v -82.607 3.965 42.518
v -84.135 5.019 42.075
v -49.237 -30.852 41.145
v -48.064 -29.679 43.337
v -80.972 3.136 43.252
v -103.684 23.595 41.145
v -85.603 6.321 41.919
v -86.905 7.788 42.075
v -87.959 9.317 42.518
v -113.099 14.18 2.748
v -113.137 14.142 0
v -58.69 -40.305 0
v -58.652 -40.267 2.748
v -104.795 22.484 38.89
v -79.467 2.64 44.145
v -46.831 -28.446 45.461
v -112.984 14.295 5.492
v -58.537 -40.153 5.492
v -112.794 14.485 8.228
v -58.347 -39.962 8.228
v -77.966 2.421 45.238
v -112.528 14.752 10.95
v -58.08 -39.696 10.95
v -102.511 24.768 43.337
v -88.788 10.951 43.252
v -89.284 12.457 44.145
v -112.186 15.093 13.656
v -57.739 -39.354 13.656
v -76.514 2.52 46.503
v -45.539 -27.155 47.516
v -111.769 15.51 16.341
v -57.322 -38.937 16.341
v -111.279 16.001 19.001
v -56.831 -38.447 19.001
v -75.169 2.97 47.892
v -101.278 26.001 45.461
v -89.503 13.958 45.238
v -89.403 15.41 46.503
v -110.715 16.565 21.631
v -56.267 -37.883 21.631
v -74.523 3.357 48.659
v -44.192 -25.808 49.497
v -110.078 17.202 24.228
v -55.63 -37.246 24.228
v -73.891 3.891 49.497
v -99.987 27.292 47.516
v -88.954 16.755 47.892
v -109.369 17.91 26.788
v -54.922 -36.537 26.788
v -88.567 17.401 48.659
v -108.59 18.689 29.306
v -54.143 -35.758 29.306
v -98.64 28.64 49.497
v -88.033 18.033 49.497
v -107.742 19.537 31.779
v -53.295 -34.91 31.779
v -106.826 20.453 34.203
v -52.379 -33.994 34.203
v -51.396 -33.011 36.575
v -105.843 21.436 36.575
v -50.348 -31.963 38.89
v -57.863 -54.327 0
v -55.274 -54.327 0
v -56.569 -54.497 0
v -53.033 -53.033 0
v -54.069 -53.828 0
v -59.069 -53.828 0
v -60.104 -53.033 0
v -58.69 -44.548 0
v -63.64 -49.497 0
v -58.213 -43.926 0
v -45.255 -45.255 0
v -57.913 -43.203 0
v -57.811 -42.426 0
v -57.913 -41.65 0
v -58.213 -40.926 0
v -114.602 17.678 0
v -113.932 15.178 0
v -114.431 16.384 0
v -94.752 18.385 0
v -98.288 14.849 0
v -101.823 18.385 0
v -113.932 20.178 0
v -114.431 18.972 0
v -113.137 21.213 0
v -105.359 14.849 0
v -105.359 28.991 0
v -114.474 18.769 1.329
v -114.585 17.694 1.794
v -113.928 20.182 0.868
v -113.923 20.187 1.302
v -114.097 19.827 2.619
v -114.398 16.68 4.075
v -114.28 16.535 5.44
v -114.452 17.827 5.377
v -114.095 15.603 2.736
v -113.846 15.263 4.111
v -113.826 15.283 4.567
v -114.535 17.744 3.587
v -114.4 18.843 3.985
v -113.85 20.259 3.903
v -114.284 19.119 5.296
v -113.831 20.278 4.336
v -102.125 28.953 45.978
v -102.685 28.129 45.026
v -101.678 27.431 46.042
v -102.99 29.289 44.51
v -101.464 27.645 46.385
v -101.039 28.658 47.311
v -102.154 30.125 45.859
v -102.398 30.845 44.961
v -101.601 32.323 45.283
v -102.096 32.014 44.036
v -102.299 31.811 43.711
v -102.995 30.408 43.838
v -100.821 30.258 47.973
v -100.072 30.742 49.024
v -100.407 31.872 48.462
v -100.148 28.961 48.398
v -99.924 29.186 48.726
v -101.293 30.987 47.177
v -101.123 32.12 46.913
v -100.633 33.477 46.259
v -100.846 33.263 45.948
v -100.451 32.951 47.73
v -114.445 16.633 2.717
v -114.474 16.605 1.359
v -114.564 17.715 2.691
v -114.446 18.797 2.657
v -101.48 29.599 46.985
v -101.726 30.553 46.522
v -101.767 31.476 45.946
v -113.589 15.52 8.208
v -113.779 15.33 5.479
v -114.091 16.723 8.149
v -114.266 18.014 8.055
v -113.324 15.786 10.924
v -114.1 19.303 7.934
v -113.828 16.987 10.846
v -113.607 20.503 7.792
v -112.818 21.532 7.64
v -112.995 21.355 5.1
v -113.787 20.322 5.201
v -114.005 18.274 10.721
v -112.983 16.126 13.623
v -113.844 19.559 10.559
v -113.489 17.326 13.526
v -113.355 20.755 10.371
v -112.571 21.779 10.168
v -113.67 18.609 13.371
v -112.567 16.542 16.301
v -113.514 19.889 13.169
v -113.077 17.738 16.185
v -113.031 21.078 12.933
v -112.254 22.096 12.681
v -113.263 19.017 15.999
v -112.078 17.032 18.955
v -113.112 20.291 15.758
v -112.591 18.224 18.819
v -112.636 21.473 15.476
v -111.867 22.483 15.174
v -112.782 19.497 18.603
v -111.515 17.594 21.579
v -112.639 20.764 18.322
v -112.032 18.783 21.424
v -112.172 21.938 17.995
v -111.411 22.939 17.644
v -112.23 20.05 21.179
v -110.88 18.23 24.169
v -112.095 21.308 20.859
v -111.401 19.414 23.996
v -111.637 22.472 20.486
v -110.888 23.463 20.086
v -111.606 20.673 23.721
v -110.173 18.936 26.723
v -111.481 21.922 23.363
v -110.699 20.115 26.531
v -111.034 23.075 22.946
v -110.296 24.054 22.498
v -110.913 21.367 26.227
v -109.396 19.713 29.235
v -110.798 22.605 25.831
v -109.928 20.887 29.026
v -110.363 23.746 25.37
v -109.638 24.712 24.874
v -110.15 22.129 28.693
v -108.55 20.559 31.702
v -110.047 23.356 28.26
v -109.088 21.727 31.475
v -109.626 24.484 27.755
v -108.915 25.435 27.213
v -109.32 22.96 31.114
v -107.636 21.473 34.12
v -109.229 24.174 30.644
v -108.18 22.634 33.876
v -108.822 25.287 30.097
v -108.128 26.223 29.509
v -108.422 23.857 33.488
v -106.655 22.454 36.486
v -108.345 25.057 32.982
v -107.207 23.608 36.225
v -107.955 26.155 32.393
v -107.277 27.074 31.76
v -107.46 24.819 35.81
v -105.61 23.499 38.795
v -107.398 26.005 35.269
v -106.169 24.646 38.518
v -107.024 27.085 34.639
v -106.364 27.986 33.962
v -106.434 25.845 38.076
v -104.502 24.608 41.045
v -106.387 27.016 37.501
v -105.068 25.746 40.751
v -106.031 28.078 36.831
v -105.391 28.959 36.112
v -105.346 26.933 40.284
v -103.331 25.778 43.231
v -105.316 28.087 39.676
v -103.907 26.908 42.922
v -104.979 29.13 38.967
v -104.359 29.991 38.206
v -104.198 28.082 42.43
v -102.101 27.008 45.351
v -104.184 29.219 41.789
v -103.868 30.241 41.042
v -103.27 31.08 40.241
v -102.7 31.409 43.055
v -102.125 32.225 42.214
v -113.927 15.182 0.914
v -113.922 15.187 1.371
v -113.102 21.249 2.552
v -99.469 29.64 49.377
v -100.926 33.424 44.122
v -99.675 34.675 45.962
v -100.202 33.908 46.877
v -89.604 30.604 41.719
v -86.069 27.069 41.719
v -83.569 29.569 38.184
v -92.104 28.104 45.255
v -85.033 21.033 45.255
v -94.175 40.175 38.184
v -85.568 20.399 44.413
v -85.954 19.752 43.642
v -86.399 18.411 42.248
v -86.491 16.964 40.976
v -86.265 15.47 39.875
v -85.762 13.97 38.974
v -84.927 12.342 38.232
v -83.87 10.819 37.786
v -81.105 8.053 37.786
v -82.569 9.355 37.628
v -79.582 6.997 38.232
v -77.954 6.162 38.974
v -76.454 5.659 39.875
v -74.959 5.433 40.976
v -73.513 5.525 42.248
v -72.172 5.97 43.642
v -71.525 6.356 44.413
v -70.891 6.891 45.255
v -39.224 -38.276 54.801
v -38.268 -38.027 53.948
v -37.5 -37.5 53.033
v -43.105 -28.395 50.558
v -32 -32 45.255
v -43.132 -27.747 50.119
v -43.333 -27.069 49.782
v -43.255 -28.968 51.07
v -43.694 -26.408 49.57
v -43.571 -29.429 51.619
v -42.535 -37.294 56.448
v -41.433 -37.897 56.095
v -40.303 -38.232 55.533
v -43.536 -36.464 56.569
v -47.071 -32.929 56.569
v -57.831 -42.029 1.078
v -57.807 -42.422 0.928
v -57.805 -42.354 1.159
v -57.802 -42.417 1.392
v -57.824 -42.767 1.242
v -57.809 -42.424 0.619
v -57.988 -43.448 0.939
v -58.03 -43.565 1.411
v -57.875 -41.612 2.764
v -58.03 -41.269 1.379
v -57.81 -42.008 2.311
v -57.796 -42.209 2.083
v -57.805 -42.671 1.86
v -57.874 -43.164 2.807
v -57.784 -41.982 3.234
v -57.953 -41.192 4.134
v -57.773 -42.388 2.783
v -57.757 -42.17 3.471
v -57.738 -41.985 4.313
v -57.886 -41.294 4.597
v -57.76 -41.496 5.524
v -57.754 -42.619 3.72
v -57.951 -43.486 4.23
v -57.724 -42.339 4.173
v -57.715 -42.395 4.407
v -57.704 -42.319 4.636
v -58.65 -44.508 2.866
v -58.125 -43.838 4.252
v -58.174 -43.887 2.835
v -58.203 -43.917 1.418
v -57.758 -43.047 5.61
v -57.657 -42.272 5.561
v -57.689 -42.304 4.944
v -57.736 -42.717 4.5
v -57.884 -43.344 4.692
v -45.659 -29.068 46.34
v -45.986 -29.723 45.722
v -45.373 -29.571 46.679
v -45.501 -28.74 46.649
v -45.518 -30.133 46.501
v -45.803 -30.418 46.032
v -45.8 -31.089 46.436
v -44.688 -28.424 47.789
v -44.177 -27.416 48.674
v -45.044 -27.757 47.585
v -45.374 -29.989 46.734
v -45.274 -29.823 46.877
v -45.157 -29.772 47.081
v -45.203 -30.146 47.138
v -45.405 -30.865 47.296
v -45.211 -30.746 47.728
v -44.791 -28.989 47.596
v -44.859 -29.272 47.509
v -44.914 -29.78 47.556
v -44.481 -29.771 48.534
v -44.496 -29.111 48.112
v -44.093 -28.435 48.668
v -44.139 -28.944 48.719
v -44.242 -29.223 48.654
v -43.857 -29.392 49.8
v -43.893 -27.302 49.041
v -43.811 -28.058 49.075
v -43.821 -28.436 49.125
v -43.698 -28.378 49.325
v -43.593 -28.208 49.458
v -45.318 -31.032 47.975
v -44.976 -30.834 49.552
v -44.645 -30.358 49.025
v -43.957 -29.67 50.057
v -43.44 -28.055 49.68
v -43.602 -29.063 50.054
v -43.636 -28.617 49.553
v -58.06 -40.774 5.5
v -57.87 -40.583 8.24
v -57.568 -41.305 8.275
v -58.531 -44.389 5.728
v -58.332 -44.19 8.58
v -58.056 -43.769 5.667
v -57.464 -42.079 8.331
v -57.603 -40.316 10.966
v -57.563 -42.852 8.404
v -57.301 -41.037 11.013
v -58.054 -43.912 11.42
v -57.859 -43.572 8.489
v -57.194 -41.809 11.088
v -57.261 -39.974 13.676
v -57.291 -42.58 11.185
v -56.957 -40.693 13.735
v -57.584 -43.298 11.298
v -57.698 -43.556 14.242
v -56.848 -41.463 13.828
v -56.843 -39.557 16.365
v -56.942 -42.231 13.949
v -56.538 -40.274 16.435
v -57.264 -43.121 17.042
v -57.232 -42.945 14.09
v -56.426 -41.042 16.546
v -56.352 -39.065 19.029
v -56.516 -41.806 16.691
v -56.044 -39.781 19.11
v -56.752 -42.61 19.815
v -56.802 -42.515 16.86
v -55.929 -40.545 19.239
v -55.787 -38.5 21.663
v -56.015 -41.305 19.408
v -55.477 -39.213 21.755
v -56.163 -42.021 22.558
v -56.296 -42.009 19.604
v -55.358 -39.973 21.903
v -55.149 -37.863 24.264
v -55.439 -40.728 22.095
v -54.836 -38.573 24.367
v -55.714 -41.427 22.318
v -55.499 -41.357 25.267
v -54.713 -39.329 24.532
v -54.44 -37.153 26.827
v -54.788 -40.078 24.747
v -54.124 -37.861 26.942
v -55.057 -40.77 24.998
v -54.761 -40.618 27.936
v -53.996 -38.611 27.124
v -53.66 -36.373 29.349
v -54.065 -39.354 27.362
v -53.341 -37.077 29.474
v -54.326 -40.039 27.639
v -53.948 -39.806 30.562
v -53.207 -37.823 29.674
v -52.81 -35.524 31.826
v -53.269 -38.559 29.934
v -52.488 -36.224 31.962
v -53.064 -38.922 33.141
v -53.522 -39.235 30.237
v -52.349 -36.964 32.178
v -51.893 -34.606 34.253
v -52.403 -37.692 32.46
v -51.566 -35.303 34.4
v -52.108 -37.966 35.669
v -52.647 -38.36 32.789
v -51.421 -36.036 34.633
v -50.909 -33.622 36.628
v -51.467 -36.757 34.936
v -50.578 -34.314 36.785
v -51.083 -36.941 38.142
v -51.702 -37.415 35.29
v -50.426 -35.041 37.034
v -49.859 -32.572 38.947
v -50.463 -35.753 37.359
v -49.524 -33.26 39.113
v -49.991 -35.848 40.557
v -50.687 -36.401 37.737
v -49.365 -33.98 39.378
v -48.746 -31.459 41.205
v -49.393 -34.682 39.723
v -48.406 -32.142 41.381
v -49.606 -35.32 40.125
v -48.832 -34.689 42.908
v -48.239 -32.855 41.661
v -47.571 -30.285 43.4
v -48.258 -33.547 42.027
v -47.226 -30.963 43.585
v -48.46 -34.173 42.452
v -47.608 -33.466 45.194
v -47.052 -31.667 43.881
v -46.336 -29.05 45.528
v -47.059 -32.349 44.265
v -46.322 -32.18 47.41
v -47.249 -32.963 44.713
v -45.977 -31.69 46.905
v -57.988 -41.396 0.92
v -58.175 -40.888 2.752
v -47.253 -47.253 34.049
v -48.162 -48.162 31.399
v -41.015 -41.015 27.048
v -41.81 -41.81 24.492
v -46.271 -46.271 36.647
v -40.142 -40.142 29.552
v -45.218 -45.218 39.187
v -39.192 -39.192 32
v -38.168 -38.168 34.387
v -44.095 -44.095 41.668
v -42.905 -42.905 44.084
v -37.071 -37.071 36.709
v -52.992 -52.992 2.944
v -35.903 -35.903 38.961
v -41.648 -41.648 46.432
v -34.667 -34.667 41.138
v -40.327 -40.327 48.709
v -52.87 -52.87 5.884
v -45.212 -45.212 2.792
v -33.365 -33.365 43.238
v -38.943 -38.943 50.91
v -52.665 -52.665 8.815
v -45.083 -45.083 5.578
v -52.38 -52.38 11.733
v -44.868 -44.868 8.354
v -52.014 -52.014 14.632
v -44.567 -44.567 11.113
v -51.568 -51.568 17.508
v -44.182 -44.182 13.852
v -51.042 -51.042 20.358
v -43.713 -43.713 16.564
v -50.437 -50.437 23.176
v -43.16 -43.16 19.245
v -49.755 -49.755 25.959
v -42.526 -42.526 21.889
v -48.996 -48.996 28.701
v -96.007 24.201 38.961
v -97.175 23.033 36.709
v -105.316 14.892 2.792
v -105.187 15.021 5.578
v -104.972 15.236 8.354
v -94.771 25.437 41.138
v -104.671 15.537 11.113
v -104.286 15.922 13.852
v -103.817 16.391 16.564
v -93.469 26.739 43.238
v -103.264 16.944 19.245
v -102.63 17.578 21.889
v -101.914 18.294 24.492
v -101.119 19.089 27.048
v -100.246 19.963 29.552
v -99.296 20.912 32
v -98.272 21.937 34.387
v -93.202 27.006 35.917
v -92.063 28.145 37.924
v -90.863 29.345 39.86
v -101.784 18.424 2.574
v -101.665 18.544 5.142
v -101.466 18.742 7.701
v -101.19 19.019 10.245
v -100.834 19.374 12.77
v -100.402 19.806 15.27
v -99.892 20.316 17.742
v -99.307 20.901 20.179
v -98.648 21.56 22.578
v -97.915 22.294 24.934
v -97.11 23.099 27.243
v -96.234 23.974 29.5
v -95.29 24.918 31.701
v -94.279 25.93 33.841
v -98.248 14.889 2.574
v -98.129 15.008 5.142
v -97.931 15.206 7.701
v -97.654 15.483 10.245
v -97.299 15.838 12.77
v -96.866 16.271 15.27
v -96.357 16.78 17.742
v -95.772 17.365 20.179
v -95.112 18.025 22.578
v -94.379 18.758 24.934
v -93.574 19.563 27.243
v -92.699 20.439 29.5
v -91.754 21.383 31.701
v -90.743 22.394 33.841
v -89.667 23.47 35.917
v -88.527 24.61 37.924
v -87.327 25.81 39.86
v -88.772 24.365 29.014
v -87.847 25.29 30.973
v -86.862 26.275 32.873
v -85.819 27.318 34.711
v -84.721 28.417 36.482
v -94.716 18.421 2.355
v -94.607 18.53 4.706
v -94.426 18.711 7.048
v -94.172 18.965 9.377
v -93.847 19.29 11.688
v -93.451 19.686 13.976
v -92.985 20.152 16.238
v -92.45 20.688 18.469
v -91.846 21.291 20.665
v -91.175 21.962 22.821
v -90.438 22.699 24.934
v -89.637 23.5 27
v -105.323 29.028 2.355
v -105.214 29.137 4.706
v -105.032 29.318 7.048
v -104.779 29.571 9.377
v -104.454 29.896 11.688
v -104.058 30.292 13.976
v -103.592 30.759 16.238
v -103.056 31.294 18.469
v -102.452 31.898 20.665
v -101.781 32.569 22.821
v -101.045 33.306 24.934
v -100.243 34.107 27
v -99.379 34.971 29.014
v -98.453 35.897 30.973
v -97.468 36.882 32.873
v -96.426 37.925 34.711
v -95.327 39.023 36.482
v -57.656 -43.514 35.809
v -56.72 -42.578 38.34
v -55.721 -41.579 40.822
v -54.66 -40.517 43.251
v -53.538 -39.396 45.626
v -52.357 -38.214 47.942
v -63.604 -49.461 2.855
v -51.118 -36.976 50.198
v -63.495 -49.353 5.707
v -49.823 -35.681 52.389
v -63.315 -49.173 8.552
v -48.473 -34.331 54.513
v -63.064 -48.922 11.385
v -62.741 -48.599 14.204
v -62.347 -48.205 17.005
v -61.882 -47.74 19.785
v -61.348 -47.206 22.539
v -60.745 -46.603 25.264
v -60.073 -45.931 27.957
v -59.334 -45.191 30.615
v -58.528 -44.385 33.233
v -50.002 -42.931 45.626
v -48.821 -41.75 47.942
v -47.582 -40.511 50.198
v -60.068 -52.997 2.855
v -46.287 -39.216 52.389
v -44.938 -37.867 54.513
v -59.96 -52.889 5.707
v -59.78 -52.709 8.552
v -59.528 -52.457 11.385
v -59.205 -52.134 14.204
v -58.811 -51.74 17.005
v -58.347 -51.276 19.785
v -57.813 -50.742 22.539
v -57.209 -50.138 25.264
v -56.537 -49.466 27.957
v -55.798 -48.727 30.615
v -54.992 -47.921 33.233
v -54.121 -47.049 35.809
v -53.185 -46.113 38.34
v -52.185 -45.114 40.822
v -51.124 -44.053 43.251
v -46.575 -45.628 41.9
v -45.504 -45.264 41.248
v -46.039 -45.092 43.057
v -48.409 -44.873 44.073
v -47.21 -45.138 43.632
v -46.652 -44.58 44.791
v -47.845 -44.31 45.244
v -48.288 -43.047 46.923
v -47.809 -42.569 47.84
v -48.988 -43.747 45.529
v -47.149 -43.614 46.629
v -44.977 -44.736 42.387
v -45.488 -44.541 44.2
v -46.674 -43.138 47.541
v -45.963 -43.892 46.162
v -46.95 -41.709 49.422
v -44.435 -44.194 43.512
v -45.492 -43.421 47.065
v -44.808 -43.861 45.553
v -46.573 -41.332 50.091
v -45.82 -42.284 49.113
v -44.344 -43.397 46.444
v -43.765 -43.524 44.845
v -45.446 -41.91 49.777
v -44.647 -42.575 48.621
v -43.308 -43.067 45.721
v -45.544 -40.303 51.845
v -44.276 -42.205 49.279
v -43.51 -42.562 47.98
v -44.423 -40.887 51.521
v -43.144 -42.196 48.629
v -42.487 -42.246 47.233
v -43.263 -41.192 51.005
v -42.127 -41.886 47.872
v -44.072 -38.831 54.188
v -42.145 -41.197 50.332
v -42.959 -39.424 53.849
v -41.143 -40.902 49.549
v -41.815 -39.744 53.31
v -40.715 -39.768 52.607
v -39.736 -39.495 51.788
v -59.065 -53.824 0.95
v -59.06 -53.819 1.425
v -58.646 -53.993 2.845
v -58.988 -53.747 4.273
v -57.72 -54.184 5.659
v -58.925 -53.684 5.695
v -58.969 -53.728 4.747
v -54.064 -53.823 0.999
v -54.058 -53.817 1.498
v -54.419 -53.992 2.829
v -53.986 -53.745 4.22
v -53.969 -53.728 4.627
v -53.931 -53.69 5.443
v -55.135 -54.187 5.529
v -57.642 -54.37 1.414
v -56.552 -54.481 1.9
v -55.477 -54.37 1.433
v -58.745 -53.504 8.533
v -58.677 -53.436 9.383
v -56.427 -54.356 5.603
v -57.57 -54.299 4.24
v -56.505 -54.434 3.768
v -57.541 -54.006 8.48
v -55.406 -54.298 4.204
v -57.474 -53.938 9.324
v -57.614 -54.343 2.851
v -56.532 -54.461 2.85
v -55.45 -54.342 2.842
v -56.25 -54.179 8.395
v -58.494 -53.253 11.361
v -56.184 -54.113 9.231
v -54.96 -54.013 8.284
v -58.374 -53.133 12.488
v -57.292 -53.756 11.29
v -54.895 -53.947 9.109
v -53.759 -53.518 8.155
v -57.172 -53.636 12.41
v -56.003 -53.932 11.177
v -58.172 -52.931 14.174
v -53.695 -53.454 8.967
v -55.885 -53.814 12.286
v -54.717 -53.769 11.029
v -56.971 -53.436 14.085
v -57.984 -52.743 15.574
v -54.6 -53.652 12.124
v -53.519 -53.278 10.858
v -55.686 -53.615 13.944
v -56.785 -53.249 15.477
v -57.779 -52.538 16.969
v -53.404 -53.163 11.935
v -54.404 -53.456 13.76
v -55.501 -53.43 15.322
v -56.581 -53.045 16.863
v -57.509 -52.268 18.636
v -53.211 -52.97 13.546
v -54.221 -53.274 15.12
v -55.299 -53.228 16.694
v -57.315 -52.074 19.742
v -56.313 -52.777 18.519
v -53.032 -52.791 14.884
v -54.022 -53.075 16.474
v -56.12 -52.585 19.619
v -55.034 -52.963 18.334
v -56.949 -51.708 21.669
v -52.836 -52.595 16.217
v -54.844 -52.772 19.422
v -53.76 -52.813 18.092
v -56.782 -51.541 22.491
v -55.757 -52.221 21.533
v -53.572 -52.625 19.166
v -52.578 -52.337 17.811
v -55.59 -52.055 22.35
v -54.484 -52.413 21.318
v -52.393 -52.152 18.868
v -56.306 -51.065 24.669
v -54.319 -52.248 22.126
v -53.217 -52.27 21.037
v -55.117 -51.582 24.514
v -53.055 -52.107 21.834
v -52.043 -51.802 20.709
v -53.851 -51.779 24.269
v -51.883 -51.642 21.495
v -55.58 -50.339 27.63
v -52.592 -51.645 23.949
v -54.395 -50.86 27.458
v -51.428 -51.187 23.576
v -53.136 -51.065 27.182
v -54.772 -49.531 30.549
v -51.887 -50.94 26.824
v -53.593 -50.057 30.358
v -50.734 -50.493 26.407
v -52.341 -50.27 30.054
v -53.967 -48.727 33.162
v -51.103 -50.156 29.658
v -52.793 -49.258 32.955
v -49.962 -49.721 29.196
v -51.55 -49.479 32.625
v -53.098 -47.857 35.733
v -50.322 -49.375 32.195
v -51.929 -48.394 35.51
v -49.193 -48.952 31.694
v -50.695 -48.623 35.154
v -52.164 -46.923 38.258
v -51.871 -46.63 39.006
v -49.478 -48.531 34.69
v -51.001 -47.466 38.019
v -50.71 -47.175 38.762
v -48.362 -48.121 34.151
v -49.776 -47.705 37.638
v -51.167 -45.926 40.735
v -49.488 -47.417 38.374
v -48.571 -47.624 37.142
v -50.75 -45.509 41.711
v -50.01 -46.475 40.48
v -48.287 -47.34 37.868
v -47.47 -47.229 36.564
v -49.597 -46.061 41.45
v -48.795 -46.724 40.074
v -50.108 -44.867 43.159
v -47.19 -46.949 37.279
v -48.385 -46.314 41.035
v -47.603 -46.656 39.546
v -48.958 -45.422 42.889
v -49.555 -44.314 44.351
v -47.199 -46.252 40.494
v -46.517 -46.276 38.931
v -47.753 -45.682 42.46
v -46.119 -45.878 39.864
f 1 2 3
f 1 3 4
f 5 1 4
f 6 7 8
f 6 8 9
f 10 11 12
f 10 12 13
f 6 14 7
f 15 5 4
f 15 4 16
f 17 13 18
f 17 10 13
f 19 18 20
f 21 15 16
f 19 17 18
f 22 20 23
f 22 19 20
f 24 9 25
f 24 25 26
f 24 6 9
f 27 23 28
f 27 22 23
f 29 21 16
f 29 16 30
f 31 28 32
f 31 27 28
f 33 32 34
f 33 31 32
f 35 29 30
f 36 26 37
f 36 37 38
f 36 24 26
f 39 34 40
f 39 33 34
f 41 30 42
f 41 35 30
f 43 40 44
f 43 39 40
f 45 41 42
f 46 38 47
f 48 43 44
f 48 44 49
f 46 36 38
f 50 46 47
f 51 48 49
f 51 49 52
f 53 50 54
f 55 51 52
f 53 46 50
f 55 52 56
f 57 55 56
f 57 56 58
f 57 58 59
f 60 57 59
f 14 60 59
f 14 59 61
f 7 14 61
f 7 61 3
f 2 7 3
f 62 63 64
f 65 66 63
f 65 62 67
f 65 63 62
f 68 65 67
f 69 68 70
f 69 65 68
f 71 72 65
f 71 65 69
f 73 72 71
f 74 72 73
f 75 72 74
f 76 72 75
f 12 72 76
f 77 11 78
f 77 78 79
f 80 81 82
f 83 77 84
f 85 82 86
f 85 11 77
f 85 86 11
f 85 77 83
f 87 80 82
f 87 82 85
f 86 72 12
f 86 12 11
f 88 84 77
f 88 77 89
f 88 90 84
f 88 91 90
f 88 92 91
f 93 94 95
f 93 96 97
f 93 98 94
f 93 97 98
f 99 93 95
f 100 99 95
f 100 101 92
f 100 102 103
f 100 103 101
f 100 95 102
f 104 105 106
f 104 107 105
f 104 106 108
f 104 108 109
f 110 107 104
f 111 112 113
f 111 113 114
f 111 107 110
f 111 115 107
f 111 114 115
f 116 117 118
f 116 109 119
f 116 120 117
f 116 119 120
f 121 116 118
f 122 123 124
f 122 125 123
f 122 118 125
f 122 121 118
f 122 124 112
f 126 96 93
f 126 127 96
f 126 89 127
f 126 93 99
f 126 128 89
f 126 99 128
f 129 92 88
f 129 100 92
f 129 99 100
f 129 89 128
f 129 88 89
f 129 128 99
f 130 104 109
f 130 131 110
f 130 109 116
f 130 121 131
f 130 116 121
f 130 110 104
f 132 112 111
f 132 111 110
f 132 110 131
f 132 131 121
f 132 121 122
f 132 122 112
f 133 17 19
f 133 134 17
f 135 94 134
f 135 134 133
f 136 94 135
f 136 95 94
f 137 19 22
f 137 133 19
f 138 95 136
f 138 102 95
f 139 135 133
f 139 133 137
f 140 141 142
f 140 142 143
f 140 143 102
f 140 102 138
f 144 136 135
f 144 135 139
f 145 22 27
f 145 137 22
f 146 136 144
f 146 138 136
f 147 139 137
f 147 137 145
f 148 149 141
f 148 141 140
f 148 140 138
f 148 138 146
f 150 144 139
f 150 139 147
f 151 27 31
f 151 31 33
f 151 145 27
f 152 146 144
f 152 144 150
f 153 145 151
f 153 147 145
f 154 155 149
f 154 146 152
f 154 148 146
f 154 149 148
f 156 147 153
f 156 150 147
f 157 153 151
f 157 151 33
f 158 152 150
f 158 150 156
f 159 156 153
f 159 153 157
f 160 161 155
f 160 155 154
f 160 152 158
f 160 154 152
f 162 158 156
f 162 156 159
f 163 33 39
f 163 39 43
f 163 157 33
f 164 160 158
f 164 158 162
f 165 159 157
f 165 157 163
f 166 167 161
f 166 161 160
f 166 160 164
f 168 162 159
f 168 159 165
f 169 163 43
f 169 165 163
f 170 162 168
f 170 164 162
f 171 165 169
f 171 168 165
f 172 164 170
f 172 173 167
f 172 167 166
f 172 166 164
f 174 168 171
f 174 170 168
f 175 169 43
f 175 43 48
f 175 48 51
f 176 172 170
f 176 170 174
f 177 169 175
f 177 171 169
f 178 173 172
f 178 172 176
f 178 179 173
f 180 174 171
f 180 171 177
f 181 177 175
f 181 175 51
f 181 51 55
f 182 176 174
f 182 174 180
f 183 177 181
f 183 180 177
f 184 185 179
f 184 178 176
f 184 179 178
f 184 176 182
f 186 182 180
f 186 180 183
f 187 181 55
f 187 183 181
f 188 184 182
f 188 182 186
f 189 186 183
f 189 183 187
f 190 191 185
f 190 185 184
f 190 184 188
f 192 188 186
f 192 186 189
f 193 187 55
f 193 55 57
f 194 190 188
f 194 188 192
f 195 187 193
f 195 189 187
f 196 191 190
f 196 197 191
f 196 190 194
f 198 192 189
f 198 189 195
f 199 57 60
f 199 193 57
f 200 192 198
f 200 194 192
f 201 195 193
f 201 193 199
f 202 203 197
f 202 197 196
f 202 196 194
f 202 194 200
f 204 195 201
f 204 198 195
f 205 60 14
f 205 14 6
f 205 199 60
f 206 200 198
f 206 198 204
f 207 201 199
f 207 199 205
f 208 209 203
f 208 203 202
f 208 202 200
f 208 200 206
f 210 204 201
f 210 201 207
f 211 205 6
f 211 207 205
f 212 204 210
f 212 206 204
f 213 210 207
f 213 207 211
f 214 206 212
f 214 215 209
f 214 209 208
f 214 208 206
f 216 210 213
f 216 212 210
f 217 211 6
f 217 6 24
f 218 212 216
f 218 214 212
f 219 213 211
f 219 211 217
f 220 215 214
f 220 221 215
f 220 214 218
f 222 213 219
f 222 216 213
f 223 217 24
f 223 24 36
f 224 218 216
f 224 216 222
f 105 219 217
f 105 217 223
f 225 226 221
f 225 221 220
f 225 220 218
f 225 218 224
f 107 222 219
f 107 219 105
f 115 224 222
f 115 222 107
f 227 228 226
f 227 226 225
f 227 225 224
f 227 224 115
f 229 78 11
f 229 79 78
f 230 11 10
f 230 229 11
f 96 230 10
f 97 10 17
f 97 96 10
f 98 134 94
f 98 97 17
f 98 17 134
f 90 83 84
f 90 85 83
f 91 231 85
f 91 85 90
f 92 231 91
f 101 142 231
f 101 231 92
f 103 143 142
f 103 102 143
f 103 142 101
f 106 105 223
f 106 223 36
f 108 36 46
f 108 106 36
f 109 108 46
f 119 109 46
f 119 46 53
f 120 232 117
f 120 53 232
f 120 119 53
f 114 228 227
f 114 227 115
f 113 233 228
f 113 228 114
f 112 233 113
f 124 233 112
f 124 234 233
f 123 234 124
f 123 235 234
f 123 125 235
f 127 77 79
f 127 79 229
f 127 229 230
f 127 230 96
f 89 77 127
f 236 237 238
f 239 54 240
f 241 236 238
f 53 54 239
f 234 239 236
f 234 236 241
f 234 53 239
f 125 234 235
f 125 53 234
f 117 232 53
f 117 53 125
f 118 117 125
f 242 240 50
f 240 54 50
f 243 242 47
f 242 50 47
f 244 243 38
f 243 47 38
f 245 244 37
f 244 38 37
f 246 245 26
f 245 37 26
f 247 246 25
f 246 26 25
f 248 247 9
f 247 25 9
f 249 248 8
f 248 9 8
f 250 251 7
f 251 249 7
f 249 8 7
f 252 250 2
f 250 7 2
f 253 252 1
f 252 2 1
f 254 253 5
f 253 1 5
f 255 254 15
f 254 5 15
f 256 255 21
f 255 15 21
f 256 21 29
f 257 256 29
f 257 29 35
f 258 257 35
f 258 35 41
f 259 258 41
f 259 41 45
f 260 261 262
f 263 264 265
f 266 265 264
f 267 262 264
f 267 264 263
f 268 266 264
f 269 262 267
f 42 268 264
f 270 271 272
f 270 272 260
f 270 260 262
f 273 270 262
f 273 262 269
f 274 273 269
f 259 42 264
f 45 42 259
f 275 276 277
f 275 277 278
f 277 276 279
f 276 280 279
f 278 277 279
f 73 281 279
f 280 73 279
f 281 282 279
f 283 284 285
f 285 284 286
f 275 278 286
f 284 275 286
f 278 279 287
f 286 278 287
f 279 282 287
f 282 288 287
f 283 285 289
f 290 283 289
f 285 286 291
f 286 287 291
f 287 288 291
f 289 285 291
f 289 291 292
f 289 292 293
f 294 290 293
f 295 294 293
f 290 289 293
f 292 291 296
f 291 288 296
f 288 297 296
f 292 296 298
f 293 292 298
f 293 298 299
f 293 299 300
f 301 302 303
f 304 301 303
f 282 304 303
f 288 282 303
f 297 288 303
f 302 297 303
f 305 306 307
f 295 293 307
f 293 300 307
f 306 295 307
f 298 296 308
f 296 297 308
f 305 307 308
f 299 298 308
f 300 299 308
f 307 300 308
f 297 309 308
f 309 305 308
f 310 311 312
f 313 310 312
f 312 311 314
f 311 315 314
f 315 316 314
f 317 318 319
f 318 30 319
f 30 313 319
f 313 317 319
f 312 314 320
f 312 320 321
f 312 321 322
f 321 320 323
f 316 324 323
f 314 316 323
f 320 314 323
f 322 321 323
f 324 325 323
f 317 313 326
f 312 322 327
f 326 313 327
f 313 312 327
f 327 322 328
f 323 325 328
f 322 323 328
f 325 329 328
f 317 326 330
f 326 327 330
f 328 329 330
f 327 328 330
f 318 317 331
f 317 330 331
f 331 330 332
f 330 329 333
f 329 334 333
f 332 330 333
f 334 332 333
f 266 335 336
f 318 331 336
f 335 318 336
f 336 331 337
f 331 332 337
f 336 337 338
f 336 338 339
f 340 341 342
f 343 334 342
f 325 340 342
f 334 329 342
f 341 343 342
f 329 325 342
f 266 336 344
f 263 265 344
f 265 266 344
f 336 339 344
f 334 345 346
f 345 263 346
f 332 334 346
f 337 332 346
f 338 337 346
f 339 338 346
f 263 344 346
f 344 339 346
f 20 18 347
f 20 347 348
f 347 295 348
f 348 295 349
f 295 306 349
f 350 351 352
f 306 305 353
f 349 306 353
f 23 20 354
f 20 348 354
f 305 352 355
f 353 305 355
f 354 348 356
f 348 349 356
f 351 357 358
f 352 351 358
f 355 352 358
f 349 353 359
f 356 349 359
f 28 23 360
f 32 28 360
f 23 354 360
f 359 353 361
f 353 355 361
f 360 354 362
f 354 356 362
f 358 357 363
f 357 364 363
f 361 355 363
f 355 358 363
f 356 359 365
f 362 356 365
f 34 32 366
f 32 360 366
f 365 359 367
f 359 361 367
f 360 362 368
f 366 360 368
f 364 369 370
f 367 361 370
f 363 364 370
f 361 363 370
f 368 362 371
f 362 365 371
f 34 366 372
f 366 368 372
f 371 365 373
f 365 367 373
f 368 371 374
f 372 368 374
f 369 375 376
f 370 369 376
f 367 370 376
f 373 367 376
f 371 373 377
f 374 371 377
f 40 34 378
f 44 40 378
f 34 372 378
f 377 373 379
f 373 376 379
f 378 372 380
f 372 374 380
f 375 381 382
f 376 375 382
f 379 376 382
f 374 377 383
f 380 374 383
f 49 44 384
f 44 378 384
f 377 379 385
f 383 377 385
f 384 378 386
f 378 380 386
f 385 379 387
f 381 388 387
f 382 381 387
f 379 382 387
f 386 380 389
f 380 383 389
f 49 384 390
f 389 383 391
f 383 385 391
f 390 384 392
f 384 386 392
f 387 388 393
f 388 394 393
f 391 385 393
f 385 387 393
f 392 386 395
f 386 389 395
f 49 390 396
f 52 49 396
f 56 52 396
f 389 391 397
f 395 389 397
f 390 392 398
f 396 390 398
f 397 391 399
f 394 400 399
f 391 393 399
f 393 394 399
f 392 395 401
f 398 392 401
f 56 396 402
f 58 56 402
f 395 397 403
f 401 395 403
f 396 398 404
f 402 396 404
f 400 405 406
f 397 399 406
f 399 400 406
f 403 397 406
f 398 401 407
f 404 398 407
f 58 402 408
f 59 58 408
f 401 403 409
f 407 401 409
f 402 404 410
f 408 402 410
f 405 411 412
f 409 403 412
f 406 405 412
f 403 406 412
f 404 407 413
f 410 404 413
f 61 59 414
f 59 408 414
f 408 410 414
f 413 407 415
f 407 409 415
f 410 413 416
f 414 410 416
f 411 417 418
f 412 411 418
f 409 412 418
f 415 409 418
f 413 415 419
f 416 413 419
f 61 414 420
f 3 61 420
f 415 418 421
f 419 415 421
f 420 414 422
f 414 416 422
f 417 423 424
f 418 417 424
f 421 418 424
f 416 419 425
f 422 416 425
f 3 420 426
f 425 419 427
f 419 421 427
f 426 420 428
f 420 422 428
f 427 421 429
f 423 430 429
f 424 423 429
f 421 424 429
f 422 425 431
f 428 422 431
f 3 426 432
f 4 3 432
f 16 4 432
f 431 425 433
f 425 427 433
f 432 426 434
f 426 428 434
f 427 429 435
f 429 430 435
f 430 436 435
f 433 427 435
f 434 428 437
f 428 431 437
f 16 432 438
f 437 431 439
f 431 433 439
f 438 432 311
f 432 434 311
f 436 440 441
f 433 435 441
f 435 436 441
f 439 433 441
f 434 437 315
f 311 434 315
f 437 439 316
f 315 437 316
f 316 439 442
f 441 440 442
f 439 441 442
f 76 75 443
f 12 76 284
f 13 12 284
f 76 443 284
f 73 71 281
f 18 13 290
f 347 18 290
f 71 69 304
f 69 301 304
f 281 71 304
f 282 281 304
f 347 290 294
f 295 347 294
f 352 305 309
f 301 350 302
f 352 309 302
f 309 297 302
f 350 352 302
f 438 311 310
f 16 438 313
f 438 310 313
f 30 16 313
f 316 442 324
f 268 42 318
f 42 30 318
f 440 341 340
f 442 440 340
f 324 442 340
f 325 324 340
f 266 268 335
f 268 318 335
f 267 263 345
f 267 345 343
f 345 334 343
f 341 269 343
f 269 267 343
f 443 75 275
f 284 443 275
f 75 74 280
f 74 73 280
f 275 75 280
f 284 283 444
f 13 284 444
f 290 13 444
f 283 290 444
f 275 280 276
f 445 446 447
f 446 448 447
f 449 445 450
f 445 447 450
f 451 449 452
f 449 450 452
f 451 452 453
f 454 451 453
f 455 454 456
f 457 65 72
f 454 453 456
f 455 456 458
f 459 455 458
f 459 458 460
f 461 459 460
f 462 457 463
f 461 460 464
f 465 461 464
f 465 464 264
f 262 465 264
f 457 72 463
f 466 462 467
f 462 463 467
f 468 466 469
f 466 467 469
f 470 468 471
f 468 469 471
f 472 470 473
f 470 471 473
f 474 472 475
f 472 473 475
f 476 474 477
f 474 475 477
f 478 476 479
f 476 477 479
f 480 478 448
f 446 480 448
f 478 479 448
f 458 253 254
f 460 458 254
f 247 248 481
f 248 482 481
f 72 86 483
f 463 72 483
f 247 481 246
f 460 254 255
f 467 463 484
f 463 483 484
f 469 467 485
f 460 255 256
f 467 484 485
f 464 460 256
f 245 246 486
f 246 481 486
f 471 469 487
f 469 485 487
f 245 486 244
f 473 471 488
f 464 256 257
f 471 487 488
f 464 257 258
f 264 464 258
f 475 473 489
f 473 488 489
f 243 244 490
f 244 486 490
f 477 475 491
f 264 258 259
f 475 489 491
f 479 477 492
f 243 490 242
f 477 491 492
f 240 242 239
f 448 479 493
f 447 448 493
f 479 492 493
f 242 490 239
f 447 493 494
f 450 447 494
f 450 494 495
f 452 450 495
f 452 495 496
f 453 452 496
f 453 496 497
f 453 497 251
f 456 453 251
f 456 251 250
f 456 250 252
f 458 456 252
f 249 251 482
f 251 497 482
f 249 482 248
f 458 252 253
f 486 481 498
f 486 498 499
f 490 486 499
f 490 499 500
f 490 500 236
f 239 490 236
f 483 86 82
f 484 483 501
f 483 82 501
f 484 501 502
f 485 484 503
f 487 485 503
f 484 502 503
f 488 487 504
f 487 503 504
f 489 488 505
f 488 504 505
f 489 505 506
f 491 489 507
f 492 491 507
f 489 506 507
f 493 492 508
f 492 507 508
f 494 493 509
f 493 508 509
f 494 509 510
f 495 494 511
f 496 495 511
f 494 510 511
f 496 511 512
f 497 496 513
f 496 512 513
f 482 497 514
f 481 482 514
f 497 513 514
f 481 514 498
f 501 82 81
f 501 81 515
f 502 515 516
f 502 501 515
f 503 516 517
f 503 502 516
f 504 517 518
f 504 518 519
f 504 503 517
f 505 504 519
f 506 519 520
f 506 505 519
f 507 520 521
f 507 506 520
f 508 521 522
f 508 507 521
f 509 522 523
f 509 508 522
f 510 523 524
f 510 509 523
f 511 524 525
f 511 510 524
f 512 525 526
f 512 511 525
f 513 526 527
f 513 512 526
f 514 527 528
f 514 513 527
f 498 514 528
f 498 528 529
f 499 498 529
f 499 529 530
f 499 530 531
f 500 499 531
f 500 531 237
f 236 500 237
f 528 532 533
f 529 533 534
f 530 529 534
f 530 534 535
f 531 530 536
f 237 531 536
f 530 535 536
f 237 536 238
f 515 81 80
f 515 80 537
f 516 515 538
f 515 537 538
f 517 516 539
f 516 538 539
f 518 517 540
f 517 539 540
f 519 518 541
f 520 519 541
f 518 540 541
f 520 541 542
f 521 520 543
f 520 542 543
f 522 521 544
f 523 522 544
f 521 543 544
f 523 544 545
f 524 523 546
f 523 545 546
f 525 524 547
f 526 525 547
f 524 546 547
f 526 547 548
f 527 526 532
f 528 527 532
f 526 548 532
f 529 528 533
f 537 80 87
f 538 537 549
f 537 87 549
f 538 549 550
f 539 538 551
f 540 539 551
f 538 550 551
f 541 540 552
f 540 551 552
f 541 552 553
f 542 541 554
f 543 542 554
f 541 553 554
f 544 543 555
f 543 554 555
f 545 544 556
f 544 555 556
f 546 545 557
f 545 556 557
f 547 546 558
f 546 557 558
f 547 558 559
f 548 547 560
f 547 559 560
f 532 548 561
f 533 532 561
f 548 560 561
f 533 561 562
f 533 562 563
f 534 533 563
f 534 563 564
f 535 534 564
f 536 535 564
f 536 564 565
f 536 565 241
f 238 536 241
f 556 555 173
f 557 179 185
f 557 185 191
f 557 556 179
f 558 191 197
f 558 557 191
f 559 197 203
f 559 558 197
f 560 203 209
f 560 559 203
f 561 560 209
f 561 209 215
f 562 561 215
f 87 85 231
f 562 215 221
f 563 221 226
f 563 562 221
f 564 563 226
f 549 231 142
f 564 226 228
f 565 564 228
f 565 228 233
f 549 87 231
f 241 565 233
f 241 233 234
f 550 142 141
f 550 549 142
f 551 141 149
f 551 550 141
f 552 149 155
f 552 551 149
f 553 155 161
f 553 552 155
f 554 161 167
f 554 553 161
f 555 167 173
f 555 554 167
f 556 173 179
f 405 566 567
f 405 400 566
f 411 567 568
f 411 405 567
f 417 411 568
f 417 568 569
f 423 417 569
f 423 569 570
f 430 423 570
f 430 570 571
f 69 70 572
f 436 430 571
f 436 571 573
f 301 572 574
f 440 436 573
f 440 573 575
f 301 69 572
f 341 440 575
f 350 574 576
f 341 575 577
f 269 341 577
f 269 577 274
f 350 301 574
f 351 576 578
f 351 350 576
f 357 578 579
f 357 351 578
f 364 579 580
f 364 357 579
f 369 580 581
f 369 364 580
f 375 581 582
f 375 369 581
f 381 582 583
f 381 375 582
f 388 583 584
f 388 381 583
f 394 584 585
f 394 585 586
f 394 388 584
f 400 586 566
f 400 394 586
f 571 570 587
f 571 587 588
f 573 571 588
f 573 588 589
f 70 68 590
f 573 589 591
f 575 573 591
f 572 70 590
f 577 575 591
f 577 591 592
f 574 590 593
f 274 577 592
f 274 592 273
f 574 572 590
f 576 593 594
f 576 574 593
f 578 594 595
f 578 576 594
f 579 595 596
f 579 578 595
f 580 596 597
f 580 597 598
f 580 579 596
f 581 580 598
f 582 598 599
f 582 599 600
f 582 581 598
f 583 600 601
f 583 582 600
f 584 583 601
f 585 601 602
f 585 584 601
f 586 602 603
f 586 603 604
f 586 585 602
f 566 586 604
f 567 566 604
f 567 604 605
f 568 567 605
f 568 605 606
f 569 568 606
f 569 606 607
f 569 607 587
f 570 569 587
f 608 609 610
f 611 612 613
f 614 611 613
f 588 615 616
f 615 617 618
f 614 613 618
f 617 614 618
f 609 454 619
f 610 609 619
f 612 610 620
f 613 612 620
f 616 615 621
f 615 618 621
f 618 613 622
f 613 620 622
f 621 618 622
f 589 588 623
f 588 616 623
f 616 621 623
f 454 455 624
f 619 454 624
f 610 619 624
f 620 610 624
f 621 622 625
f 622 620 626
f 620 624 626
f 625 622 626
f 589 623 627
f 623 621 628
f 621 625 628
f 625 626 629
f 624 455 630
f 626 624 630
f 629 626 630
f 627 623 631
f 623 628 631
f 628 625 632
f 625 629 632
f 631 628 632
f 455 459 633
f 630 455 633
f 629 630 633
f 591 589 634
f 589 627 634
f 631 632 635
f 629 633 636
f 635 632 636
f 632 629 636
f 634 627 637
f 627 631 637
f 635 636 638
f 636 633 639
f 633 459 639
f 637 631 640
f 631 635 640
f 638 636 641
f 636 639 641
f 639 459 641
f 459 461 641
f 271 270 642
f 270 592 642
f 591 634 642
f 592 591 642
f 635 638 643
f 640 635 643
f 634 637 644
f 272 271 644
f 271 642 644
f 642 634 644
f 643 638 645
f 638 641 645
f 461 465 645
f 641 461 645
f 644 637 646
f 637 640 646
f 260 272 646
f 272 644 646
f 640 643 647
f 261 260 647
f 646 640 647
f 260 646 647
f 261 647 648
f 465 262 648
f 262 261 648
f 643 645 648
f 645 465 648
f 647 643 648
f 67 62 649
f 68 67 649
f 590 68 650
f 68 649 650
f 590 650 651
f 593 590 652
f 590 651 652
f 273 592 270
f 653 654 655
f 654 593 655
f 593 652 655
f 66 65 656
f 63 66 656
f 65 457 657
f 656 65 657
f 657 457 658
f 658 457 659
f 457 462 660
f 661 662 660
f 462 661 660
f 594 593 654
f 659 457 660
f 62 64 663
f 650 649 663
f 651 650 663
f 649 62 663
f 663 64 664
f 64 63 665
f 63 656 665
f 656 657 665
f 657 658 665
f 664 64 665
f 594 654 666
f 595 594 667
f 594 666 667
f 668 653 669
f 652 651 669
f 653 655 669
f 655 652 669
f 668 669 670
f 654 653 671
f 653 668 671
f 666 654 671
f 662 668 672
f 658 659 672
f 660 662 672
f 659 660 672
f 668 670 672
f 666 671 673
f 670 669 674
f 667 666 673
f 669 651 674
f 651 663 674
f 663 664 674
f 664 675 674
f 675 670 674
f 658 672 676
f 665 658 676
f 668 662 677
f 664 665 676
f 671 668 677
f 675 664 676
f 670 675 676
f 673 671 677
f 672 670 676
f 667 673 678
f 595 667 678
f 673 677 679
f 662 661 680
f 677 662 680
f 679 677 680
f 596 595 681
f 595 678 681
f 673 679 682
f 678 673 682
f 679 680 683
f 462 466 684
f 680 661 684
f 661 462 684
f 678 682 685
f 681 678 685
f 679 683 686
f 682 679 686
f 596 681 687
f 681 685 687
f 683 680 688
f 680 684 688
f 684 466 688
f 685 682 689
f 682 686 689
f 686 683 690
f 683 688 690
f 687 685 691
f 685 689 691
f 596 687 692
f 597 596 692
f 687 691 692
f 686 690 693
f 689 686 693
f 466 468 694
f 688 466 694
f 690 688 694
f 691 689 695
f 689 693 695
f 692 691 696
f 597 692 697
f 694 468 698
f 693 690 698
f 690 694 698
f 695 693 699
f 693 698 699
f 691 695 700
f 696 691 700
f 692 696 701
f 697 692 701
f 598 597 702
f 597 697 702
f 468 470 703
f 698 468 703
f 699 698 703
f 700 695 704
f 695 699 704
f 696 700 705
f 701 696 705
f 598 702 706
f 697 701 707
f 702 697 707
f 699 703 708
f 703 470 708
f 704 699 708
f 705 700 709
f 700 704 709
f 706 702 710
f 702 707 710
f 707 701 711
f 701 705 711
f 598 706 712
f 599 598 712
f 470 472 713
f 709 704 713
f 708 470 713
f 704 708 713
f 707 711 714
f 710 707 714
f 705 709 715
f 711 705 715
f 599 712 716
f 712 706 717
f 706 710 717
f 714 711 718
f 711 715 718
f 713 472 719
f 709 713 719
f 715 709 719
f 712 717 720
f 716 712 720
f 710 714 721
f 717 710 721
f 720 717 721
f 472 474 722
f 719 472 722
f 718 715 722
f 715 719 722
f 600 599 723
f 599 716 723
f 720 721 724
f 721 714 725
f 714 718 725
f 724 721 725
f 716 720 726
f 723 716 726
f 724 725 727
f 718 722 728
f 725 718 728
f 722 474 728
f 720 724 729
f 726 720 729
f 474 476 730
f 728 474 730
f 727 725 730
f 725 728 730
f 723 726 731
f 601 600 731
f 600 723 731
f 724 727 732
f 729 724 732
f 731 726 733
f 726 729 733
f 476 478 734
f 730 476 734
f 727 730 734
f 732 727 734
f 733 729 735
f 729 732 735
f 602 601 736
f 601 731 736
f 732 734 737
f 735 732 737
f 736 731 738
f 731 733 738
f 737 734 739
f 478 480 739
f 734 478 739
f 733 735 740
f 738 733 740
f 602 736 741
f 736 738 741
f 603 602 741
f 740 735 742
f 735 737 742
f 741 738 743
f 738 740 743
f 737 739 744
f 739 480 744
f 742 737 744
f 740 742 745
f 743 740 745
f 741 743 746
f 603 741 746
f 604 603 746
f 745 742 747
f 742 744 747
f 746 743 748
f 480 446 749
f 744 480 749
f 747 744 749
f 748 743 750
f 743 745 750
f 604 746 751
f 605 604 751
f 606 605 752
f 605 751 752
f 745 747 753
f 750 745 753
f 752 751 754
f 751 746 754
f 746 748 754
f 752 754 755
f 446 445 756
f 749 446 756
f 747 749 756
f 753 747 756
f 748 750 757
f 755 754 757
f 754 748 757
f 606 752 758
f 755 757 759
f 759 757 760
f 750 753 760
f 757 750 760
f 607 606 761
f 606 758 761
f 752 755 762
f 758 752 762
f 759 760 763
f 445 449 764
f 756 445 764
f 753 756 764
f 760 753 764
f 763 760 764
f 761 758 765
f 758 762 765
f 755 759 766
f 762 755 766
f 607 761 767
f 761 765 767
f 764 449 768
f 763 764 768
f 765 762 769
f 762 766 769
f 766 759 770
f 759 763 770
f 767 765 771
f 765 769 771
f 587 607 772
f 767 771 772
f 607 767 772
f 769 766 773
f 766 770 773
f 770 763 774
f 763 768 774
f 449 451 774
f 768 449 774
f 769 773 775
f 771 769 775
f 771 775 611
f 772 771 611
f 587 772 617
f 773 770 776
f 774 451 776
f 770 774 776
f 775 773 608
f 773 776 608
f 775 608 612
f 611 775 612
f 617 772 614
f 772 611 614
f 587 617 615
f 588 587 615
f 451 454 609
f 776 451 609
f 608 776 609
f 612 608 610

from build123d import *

# Parameters (mm, degrees)
BOX007_W               = 100
BOX007_H               = 100
BOX007_DEPTH           = 100
BOX007_PLACEMENT_ANGLE = 45
BOX006_W               = 200
BOX006_H               = 100
BOX006_DEPTH           = 100
BOX006_PLACEMENT_ANGLE = 45
BOX005_W               = 100
BOX005_H               = 100
BOX005_DEPTH           = 100
BOX005_PLACEMENT_ANGLE = -90
BOX004_W               = 20
BOX004_H               = 20
BOX004_DEPTH           = 80
BOX003_W               = 20
BOX003_H               = 20
BOX003_DEPTH           = 80
BOX002_W               = 10
BOX002_H               = 25
BOX002_DEPTH           = 35
BOX002_PITCH_ANGLE     = -15
BOX001_W               = 10
BOX001_H               = 25
BOX001_DEPTH           = 35
BOX001_PITCH_ANGLE     = 15
BOX_W                  = 20
BOX_H                  = 25
BOX_DEPTH              = 35
CYLINDER005_R          = 10
CYLINDER005_DEPTH      = 180
CYLINDER005_ROLL_ANGLE = 90
CYLINDER004_R          = 54
CYLINDER004_DEPTH      = 100
CYLINDER003_R          = 59
CYLINDER003_DEPTH      = 10
CYLINDER002_R          = 64
CYLINDER002_DEPTH      = 85
CYLINDER001_R          = 70
CYLINDER001_DEPTH      = 90
CYLINDER_R             = 80
CYLINDER_DEPTH         = 10
FILLET_R               = 3
FILLET001_R            = 5
FILLET002_R            = 5
CUT009_ROLL_ANGLE      = -90
CUT009_PITCH_ANGLE     = -45
CUT009_PLACEMENT_ANGLE = 45


with BuildPart() as cube004:
    # Box007 → Box007 (new body)
    with BuildSketch(Plane.XY):
        with Locations((50, 50)):
            Rectangle(BOX007_W, BOX007_H)
    extrude(amount=BOX007_DEPTH)


with BuildPart() as cube004_1:
    # Box007 placement: moved
    add(cube004.part.rotate(Axis((0, 0, 0), (0, 0, 1)), BOX007_PLACEMENT_ANGLE))


with BuildPart() as cube003:
    # Box006 → Box006 (new body)
    with BuildSketch(Plane.XY):
        with Locations((100, 50)):
            Rectangle(BOX006_W, BOX006_H)
    extrude(amount=BOX006_DEPTH)


with BuildPart() as cube003_1:
    # Box006 placement: moved
    add(cube003.part.moved(Location((-71, -71, 0))).rotate(Axis((-71, -71, 0), (0, 0, 1)), BOX006_PLACEMENT_ANGLE))


with BuildPart() as cube002:
    # Box005 → Box005 (new body)
    with BuildSketch(Plane.XY):
        with Locations((50, 50)):
            Rectangle(BOX005_W, BOX005_H)
    extrude(amount=BOX005_DEPTH)


with BuildPart() as cube002_1:
    # Box005 placement: moved
    add(cube002.part.rotate(Axis((0, 0, 0), (0, 0, 1)), BOX005_PLACEMENT_ANGLE))


with BuildPart() as tab_cut_l:
    # Box004 → Box004 (new body)
    with BuildSketch(Plane(origin=(-83, -10, 20), x_dir=(1, 0, 0), z_dir=(0, 0, 1))):
        with Locations((10, 10)):
            Rectangle(BOX004_W, BOX004_H)
    extrude(amount=BOX004_DEPTH)


with BuildPart() as tab_cut_r:
    # Box003 → Box003 (new body)
    with BuildSketch(Plane(origin=(63, -10, 20), x_dir=(1, 0, 0), z_dir=(0, 0, 1))):
        with Locations((10, 10)):
            Rectangle(BOX003_W, BOX003_H)
    extrude(amount=BOX003_DEPTH)


with BuildPart() as cube001:
    # Box002 → Box002 (new body)
    with BuildSketch(Plane.XY):
        with Locations((5, 12.5)):
            Rectangle(BOX002_W, BOX002_H)
    extrude(amount=BOX002_DEPTH)


with BuildPart() as cube001_1:
    # Box002 pitch: moved
    add(cube001.part.rotate(Axis((0, 0, 0), (0, 1, 0)), BOX002_PITCH_ANGLE))


with BuildPart() as cube001_2:
    # Box002 placement: moved
    add(cube001_1.part.moved(Location((-9.95, 48, 64))))


with BuildPart() as cube:
    # Box001 → Box001 (new body)
    with BuildSketch(Plane.XY):
        with Locations((5, 12.5)):
            Rectangle(BOX001_W, BOX001_H)
    extrude(amount=BOX001_DEPTH)


with BuildPart() as cube_1:
    # Box001 pitch: moved
    add(cube.part.rotate(Axis((0, 0, 0), (0, 1, 0)), BOX001_PITCH_ANGLE))


with BuildPart() as cube_2:
    # Box001 placement: moved
    add(cube_1.part.moved(Location((0, 48, 65))))


with BuildPart() as bearing_slot:
    # Box → Box (new body)
    with BuildSketch(Plane(origin=(-10, 48, 65), x_dir=(1, 0, 0), z_dir=(0, 0, 1))):
        with Locations((10, 12.5)):
            Rectangle(BOX_W, BOX_H)
    extrude(amount=BOX_DEPTH)


with BuildPart() as bearing_holes:
    # Cylinder005 → Cylinder005 (new body)
    with BuildSketch(Plane.XY):
        Circle(CYLINDER005_R)
    extrude(amount=CYLINDER005_DEPTH)


with BuildPart() as bearing_holes_1:
    # Cylinder005 roll: moved
    add(bearing_holes.part.rotate(Axis((0, 0, 0), (1, 0, 0)), CYLINDER005_ROLL_ANGLE))


with BuildPart() as bearing_holes_2:
    # Cylinder005 placement: moved
    add(bearing_holes_1.part.moved(Location((0, 90, 65))))


with BuildPart() as through_hole:
    # Cylinder004 → Cylinder004 (new body)
    with BuildSketch(Plane.XY):
        Circle(CYLINDER004_R)
    extrude(amount=CYLINDER004_DEPTH)


with BuildPart() as inner_lip:
    # Cylinder003 → Cylinder003 (new body)
    with BuildSketch(Plane.XY.offset(80)):
        Circle(CYLINDER003_R)
    extrude(amount=CYLINDER003_DEPTH)


with BuildPart() as inner_hole:
    # Cylinder002 → Cylinder002 (new body)
    with BuildSketch(Plane.XY):
        Circle(CYLINDER002_R)
    extrude(amount=CYLINDER002_DEPTH)


with BuildPart() as body_cylinder:
    # Cylinder001 → Cylinder001 (new body)
    with BuildSketch(Plane.XY.offset(5)):
        Circle(CYLINDER001_R)
    extrude(amount=CYLINDER001_DEPTH)


with BuildPart() as cut010:
    # Cylinder → Cylinder (new body)
    with BuildSketch(Plane.XY):
        Circle(CYLINDER_R)
    extrude(amount=CYLINDER_DEPTH)

    # Fusion: union Body_Cylinder
    add(body_cylinder.part)

    # Cut: cut Inner_Hole
    add(inner_hole.part, mode=Mode.SUBTRACT)

    # Fusion001: union Inner_Lip
    add(inner_lip.part)

    # Cut001: cut Through_Hole
    add(through_hole.part, mode=Mode.SUBTRACT)

    # Fillet
    fillet_edges = [cut010.edges().sort_by_distance(p)[0] for p in [
        (-70, 0, 10),
    ]]
    fillet(fillet_edges, radius=FILLET_R)

    # Fillet001
    fillet001_edges = [cut010.edges().sort_by_distance(p)[0] for p in [
        (-80, 0, 0),
    ]]
    fillet(fillet001_edges, radius=FILLET001_R)

    # Fillet002
    fillet002_edges = [cut010.edges().sort_by_distance(p)[0] for p in [
        (-70, 0, 95),
    ]]
    fillet(fillet002_edges, radius=FILLET002_R)

    # Cut002: cut Bearing_Holes
    add(bearing_holes_2.part, mode=Mode.SUBTRACT)

    # Cut003: cut Bearing_Slot
    add(bearing_slot.part, mode=Mode.SUBTRACT)

    # Cut004: cut Cube
    add(cube_2.part, mode=Mode.SUBTRACT)

    # Cut005: cut Cube001
    add(cube001_2.part, mode=Mode.SUBTRACT)

    # Cut006: cut Tab_Cut_R
    add(tab_cut_r.part, mode=Mode.SUBTRACT)

    # Cut007: cut Tab_Cut_L
    add(tab_cut_l.part, mode=Mode.SUBTRACT)

    # Cut008: cut Cube002
    add(cube002_1.part, mode=Mode.SUBTRACT)

    # Cut009: cut Cube003
    add(cube003_1.part, mode=Mode.SUBTRACT)


with BuildPart() as cut010_1:
    # Cut009 roll: moved
    add(cut010.part.rotate(Axis((0, 0, 0), (1, 0, 0)), CUT009_ROLL_ANGLE))


with BuildPart() as cut010_2:
    # Cut009 pitch: moved
    add(cut010_1.part.rotate(Axis((0, 0, 0), (0, 1, 0)), CUT009_PITCH_ANGLE))


with BuildPart() as cut010_3:
    # Cut009 placement: moved
    add(cut010_2.part.rotate(Axis((0, 0, 0), (0, 0, 1)), CUT009_PLACEMENT_ANGLE))

    # Cut010: cut Cube004
    add(cube004_1.part, mode=Mode.SUBTRACT)


solid = cut010_3.part
